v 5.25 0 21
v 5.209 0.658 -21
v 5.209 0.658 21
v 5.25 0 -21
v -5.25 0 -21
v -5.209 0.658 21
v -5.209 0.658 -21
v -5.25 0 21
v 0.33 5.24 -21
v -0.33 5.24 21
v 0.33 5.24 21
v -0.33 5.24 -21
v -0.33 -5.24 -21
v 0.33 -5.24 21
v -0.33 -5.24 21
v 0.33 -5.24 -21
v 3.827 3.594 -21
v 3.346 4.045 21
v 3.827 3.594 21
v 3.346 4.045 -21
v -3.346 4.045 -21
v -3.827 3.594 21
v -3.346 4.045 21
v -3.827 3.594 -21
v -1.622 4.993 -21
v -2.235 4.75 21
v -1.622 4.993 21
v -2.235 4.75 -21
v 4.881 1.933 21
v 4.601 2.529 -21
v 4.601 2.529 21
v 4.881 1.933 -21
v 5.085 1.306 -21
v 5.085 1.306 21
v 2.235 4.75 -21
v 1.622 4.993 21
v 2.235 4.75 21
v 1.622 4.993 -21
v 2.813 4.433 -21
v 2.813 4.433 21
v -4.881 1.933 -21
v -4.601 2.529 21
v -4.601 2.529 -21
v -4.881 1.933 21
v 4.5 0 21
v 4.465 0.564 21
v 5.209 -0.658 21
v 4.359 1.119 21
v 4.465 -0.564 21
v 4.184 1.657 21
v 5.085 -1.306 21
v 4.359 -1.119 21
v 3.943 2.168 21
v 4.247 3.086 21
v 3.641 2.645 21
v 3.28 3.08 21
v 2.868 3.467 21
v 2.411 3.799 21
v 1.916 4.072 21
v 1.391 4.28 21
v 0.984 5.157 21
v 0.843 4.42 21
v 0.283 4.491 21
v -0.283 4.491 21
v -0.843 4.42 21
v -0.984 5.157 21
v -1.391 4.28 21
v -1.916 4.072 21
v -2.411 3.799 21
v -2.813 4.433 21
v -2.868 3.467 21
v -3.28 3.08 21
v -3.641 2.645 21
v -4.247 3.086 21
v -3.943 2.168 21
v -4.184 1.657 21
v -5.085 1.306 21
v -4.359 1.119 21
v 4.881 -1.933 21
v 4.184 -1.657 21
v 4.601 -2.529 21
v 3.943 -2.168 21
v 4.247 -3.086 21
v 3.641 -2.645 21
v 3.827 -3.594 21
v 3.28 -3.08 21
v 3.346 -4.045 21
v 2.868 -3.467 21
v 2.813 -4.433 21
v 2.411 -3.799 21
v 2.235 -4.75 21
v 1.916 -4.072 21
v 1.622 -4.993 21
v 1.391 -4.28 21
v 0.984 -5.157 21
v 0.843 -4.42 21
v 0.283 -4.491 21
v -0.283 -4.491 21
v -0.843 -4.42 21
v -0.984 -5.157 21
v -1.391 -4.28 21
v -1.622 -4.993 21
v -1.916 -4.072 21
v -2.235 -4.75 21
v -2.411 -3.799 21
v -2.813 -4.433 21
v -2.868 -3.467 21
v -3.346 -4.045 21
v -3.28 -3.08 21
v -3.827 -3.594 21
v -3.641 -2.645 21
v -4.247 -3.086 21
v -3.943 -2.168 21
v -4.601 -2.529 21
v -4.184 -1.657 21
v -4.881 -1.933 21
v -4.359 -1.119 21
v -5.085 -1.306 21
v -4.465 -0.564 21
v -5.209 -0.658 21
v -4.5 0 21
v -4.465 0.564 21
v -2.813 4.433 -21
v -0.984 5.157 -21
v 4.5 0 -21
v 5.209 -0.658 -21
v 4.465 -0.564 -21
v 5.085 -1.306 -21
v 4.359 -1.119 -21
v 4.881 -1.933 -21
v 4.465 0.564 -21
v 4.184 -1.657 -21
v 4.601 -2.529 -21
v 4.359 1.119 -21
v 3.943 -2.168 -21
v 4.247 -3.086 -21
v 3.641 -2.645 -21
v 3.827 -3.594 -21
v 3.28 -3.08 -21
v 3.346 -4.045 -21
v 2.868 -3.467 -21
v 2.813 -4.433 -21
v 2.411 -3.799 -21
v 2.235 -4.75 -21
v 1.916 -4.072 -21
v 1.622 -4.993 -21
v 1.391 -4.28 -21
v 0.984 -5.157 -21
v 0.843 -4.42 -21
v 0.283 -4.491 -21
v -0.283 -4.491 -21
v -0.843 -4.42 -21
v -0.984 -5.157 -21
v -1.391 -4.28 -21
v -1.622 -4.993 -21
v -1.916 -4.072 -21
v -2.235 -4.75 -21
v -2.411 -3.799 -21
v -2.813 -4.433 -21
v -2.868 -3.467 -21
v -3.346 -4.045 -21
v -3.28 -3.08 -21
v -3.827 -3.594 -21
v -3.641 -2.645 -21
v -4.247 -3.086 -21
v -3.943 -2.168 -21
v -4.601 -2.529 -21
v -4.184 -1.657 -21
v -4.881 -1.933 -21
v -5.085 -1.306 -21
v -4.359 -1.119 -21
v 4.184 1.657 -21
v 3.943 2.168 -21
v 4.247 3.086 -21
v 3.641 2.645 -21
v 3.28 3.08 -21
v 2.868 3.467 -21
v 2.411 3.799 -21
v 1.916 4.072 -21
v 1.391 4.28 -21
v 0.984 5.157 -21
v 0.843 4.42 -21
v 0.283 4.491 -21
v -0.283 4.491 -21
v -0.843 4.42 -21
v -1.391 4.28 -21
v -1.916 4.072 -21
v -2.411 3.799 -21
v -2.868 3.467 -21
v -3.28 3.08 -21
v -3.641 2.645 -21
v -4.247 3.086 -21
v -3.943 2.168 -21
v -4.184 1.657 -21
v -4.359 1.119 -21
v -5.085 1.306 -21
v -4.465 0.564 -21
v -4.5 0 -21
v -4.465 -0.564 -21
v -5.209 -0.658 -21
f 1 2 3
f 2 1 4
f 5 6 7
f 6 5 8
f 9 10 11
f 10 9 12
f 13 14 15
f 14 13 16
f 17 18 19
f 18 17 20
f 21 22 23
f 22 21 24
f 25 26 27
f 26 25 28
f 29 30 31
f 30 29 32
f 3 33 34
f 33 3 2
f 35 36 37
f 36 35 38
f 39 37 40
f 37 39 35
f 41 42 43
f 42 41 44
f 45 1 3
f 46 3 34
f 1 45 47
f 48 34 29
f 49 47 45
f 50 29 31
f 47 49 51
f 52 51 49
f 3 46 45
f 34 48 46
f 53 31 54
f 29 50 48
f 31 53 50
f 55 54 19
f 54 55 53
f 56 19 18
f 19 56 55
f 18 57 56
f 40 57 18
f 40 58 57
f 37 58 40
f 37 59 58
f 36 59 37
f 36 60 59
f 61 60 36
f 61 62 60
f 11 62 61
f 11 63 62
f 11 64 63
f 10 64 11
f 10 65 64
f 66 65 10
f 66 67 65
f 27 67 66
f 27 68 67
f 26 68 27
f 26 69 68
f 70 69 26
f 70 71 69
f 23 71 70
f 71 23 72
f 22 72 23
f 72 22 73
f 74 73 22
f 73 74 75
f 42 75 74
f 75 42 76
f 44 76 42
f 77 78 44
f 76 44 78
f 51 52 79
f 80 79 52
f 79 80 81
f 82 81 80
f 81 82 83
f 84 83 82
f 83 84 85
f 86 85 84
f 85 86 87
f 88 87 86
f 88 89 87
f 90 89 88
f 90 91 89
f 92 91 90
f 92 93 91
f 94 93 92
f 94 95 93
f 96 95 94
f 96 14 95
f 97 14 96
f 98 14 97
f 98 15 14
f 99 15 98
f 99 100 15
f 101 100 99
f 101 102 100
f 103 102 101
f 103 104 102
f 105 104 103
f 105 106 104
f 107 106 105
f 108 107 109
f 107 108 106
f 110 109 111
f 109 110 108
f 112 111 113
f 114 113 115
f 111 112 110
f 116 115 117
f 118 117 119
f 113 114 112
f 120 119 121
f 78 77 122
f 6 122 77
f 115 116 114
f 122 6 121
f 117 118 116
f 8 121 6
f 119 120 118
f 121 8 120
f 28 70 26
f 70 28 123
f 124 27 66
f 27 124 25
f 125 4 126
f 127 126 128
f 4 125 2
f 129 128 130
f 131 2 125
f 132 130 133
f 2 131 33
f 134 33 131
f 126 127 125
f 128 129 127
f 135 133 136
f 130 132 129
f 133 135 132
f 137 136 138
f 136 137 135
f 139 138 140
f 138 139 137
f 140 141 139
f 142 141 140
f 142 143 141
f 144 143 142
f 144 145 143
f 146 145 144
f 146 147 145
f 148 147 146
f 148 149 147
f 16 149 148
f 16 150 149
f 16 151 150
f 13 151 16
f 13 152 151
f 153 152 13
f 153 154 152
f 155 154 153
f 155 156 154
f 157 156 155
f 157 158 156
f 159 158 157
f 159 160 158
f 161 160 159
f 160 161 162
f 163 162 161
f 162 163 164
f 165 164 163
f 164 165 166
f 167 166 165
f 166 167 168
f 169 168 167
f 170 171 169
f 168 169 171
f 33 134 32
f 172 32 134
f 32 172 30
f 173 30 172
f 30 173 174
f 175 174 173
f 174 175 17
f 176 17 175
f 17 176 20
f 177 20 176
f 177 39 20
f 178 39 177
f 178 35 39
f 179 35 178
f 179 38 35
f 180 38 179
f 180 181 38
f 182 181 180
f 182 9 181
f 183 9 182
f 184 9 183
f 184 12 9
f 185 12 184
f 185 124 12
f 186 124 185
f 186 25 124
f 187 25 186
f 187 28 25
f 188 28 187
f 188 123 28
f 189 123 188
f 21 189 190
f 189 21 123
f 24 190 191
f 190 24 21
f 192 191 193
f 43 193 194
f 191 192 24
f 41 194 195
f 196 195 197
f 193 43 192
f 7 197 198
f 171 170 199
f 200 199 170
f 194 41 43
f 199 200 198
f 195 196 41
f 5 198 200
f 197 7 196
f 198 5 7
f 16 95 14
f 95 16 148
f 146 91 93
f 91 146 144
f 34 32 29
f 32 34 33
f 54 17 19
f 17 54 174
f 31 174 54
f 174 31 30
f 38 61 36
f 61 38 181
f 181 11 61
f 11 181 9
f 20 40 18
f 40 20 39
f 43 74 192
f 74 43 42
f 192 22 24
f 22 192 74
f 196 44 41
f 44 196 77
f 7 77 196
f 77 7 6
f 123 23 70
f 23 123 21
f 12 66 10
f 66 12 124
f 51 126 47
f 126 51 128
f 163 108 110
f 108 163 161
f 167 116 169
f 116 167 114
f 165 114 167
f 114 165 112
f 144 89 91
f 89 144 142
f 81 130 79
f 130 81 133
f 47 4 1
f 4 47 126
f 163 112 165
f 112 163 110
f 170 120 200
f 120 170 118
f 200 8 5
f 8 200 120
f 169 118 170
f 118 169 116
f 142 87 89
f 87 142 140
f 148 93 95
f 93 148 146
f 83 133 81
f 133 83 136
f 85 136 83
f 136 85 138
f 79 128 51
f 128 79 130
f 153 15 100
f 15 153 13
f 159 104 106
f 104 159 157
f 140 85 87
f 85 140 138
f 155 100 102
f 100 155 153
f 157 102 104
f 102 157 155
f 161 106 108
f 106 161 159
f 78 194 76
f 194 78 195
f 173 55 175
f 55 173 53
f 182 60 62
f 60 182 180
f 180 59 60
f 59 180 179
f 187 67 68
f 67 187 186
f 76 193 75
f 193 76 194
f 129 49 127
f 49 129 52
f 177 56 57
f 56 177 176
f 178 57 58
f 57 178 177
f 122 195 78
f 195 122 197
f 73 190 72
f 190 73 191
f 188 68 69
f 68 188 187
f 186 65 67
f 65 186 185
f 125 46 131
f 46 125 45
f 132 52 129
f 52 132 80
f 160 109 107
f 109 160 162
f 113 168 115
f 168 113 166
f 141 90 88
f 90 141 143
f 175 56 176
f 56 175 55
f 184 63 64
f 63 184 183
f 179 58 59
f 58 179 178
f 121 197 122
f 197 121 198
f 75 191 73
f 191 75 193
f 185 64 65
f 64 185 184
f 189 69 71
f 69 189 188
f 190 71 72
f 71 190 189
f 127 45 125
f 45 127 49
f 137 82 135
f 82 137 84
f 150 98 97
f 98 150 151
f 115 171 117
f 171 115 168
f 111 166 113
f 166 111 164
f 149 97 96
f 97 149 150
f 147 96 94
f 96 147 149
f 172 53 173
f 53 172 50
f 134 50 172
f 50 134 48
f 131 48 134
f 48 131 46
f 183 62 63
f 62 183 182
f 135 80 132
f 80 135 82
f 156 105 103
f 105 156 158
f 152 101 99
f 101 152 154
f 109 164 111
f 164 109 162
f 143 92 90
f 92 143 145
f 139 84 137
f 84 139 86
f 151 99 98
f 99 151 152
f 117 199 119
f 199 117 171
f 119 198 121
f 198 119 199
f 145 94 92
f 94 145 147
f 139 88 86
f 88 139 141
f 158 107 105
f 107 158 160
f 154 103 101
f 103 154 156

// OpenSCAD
$fn = 50;


difference() {
	union() {
		translate(v = [0, 0, -21.0000000000]) {
			cylinder(h = 42, r = 5.2500000000);
		}
	}
	union() {
		translate(v = [0, 0, -100.0000000000]) {
			cylinder(h = 200, r = 4.5000000000);
		}
	}
}
